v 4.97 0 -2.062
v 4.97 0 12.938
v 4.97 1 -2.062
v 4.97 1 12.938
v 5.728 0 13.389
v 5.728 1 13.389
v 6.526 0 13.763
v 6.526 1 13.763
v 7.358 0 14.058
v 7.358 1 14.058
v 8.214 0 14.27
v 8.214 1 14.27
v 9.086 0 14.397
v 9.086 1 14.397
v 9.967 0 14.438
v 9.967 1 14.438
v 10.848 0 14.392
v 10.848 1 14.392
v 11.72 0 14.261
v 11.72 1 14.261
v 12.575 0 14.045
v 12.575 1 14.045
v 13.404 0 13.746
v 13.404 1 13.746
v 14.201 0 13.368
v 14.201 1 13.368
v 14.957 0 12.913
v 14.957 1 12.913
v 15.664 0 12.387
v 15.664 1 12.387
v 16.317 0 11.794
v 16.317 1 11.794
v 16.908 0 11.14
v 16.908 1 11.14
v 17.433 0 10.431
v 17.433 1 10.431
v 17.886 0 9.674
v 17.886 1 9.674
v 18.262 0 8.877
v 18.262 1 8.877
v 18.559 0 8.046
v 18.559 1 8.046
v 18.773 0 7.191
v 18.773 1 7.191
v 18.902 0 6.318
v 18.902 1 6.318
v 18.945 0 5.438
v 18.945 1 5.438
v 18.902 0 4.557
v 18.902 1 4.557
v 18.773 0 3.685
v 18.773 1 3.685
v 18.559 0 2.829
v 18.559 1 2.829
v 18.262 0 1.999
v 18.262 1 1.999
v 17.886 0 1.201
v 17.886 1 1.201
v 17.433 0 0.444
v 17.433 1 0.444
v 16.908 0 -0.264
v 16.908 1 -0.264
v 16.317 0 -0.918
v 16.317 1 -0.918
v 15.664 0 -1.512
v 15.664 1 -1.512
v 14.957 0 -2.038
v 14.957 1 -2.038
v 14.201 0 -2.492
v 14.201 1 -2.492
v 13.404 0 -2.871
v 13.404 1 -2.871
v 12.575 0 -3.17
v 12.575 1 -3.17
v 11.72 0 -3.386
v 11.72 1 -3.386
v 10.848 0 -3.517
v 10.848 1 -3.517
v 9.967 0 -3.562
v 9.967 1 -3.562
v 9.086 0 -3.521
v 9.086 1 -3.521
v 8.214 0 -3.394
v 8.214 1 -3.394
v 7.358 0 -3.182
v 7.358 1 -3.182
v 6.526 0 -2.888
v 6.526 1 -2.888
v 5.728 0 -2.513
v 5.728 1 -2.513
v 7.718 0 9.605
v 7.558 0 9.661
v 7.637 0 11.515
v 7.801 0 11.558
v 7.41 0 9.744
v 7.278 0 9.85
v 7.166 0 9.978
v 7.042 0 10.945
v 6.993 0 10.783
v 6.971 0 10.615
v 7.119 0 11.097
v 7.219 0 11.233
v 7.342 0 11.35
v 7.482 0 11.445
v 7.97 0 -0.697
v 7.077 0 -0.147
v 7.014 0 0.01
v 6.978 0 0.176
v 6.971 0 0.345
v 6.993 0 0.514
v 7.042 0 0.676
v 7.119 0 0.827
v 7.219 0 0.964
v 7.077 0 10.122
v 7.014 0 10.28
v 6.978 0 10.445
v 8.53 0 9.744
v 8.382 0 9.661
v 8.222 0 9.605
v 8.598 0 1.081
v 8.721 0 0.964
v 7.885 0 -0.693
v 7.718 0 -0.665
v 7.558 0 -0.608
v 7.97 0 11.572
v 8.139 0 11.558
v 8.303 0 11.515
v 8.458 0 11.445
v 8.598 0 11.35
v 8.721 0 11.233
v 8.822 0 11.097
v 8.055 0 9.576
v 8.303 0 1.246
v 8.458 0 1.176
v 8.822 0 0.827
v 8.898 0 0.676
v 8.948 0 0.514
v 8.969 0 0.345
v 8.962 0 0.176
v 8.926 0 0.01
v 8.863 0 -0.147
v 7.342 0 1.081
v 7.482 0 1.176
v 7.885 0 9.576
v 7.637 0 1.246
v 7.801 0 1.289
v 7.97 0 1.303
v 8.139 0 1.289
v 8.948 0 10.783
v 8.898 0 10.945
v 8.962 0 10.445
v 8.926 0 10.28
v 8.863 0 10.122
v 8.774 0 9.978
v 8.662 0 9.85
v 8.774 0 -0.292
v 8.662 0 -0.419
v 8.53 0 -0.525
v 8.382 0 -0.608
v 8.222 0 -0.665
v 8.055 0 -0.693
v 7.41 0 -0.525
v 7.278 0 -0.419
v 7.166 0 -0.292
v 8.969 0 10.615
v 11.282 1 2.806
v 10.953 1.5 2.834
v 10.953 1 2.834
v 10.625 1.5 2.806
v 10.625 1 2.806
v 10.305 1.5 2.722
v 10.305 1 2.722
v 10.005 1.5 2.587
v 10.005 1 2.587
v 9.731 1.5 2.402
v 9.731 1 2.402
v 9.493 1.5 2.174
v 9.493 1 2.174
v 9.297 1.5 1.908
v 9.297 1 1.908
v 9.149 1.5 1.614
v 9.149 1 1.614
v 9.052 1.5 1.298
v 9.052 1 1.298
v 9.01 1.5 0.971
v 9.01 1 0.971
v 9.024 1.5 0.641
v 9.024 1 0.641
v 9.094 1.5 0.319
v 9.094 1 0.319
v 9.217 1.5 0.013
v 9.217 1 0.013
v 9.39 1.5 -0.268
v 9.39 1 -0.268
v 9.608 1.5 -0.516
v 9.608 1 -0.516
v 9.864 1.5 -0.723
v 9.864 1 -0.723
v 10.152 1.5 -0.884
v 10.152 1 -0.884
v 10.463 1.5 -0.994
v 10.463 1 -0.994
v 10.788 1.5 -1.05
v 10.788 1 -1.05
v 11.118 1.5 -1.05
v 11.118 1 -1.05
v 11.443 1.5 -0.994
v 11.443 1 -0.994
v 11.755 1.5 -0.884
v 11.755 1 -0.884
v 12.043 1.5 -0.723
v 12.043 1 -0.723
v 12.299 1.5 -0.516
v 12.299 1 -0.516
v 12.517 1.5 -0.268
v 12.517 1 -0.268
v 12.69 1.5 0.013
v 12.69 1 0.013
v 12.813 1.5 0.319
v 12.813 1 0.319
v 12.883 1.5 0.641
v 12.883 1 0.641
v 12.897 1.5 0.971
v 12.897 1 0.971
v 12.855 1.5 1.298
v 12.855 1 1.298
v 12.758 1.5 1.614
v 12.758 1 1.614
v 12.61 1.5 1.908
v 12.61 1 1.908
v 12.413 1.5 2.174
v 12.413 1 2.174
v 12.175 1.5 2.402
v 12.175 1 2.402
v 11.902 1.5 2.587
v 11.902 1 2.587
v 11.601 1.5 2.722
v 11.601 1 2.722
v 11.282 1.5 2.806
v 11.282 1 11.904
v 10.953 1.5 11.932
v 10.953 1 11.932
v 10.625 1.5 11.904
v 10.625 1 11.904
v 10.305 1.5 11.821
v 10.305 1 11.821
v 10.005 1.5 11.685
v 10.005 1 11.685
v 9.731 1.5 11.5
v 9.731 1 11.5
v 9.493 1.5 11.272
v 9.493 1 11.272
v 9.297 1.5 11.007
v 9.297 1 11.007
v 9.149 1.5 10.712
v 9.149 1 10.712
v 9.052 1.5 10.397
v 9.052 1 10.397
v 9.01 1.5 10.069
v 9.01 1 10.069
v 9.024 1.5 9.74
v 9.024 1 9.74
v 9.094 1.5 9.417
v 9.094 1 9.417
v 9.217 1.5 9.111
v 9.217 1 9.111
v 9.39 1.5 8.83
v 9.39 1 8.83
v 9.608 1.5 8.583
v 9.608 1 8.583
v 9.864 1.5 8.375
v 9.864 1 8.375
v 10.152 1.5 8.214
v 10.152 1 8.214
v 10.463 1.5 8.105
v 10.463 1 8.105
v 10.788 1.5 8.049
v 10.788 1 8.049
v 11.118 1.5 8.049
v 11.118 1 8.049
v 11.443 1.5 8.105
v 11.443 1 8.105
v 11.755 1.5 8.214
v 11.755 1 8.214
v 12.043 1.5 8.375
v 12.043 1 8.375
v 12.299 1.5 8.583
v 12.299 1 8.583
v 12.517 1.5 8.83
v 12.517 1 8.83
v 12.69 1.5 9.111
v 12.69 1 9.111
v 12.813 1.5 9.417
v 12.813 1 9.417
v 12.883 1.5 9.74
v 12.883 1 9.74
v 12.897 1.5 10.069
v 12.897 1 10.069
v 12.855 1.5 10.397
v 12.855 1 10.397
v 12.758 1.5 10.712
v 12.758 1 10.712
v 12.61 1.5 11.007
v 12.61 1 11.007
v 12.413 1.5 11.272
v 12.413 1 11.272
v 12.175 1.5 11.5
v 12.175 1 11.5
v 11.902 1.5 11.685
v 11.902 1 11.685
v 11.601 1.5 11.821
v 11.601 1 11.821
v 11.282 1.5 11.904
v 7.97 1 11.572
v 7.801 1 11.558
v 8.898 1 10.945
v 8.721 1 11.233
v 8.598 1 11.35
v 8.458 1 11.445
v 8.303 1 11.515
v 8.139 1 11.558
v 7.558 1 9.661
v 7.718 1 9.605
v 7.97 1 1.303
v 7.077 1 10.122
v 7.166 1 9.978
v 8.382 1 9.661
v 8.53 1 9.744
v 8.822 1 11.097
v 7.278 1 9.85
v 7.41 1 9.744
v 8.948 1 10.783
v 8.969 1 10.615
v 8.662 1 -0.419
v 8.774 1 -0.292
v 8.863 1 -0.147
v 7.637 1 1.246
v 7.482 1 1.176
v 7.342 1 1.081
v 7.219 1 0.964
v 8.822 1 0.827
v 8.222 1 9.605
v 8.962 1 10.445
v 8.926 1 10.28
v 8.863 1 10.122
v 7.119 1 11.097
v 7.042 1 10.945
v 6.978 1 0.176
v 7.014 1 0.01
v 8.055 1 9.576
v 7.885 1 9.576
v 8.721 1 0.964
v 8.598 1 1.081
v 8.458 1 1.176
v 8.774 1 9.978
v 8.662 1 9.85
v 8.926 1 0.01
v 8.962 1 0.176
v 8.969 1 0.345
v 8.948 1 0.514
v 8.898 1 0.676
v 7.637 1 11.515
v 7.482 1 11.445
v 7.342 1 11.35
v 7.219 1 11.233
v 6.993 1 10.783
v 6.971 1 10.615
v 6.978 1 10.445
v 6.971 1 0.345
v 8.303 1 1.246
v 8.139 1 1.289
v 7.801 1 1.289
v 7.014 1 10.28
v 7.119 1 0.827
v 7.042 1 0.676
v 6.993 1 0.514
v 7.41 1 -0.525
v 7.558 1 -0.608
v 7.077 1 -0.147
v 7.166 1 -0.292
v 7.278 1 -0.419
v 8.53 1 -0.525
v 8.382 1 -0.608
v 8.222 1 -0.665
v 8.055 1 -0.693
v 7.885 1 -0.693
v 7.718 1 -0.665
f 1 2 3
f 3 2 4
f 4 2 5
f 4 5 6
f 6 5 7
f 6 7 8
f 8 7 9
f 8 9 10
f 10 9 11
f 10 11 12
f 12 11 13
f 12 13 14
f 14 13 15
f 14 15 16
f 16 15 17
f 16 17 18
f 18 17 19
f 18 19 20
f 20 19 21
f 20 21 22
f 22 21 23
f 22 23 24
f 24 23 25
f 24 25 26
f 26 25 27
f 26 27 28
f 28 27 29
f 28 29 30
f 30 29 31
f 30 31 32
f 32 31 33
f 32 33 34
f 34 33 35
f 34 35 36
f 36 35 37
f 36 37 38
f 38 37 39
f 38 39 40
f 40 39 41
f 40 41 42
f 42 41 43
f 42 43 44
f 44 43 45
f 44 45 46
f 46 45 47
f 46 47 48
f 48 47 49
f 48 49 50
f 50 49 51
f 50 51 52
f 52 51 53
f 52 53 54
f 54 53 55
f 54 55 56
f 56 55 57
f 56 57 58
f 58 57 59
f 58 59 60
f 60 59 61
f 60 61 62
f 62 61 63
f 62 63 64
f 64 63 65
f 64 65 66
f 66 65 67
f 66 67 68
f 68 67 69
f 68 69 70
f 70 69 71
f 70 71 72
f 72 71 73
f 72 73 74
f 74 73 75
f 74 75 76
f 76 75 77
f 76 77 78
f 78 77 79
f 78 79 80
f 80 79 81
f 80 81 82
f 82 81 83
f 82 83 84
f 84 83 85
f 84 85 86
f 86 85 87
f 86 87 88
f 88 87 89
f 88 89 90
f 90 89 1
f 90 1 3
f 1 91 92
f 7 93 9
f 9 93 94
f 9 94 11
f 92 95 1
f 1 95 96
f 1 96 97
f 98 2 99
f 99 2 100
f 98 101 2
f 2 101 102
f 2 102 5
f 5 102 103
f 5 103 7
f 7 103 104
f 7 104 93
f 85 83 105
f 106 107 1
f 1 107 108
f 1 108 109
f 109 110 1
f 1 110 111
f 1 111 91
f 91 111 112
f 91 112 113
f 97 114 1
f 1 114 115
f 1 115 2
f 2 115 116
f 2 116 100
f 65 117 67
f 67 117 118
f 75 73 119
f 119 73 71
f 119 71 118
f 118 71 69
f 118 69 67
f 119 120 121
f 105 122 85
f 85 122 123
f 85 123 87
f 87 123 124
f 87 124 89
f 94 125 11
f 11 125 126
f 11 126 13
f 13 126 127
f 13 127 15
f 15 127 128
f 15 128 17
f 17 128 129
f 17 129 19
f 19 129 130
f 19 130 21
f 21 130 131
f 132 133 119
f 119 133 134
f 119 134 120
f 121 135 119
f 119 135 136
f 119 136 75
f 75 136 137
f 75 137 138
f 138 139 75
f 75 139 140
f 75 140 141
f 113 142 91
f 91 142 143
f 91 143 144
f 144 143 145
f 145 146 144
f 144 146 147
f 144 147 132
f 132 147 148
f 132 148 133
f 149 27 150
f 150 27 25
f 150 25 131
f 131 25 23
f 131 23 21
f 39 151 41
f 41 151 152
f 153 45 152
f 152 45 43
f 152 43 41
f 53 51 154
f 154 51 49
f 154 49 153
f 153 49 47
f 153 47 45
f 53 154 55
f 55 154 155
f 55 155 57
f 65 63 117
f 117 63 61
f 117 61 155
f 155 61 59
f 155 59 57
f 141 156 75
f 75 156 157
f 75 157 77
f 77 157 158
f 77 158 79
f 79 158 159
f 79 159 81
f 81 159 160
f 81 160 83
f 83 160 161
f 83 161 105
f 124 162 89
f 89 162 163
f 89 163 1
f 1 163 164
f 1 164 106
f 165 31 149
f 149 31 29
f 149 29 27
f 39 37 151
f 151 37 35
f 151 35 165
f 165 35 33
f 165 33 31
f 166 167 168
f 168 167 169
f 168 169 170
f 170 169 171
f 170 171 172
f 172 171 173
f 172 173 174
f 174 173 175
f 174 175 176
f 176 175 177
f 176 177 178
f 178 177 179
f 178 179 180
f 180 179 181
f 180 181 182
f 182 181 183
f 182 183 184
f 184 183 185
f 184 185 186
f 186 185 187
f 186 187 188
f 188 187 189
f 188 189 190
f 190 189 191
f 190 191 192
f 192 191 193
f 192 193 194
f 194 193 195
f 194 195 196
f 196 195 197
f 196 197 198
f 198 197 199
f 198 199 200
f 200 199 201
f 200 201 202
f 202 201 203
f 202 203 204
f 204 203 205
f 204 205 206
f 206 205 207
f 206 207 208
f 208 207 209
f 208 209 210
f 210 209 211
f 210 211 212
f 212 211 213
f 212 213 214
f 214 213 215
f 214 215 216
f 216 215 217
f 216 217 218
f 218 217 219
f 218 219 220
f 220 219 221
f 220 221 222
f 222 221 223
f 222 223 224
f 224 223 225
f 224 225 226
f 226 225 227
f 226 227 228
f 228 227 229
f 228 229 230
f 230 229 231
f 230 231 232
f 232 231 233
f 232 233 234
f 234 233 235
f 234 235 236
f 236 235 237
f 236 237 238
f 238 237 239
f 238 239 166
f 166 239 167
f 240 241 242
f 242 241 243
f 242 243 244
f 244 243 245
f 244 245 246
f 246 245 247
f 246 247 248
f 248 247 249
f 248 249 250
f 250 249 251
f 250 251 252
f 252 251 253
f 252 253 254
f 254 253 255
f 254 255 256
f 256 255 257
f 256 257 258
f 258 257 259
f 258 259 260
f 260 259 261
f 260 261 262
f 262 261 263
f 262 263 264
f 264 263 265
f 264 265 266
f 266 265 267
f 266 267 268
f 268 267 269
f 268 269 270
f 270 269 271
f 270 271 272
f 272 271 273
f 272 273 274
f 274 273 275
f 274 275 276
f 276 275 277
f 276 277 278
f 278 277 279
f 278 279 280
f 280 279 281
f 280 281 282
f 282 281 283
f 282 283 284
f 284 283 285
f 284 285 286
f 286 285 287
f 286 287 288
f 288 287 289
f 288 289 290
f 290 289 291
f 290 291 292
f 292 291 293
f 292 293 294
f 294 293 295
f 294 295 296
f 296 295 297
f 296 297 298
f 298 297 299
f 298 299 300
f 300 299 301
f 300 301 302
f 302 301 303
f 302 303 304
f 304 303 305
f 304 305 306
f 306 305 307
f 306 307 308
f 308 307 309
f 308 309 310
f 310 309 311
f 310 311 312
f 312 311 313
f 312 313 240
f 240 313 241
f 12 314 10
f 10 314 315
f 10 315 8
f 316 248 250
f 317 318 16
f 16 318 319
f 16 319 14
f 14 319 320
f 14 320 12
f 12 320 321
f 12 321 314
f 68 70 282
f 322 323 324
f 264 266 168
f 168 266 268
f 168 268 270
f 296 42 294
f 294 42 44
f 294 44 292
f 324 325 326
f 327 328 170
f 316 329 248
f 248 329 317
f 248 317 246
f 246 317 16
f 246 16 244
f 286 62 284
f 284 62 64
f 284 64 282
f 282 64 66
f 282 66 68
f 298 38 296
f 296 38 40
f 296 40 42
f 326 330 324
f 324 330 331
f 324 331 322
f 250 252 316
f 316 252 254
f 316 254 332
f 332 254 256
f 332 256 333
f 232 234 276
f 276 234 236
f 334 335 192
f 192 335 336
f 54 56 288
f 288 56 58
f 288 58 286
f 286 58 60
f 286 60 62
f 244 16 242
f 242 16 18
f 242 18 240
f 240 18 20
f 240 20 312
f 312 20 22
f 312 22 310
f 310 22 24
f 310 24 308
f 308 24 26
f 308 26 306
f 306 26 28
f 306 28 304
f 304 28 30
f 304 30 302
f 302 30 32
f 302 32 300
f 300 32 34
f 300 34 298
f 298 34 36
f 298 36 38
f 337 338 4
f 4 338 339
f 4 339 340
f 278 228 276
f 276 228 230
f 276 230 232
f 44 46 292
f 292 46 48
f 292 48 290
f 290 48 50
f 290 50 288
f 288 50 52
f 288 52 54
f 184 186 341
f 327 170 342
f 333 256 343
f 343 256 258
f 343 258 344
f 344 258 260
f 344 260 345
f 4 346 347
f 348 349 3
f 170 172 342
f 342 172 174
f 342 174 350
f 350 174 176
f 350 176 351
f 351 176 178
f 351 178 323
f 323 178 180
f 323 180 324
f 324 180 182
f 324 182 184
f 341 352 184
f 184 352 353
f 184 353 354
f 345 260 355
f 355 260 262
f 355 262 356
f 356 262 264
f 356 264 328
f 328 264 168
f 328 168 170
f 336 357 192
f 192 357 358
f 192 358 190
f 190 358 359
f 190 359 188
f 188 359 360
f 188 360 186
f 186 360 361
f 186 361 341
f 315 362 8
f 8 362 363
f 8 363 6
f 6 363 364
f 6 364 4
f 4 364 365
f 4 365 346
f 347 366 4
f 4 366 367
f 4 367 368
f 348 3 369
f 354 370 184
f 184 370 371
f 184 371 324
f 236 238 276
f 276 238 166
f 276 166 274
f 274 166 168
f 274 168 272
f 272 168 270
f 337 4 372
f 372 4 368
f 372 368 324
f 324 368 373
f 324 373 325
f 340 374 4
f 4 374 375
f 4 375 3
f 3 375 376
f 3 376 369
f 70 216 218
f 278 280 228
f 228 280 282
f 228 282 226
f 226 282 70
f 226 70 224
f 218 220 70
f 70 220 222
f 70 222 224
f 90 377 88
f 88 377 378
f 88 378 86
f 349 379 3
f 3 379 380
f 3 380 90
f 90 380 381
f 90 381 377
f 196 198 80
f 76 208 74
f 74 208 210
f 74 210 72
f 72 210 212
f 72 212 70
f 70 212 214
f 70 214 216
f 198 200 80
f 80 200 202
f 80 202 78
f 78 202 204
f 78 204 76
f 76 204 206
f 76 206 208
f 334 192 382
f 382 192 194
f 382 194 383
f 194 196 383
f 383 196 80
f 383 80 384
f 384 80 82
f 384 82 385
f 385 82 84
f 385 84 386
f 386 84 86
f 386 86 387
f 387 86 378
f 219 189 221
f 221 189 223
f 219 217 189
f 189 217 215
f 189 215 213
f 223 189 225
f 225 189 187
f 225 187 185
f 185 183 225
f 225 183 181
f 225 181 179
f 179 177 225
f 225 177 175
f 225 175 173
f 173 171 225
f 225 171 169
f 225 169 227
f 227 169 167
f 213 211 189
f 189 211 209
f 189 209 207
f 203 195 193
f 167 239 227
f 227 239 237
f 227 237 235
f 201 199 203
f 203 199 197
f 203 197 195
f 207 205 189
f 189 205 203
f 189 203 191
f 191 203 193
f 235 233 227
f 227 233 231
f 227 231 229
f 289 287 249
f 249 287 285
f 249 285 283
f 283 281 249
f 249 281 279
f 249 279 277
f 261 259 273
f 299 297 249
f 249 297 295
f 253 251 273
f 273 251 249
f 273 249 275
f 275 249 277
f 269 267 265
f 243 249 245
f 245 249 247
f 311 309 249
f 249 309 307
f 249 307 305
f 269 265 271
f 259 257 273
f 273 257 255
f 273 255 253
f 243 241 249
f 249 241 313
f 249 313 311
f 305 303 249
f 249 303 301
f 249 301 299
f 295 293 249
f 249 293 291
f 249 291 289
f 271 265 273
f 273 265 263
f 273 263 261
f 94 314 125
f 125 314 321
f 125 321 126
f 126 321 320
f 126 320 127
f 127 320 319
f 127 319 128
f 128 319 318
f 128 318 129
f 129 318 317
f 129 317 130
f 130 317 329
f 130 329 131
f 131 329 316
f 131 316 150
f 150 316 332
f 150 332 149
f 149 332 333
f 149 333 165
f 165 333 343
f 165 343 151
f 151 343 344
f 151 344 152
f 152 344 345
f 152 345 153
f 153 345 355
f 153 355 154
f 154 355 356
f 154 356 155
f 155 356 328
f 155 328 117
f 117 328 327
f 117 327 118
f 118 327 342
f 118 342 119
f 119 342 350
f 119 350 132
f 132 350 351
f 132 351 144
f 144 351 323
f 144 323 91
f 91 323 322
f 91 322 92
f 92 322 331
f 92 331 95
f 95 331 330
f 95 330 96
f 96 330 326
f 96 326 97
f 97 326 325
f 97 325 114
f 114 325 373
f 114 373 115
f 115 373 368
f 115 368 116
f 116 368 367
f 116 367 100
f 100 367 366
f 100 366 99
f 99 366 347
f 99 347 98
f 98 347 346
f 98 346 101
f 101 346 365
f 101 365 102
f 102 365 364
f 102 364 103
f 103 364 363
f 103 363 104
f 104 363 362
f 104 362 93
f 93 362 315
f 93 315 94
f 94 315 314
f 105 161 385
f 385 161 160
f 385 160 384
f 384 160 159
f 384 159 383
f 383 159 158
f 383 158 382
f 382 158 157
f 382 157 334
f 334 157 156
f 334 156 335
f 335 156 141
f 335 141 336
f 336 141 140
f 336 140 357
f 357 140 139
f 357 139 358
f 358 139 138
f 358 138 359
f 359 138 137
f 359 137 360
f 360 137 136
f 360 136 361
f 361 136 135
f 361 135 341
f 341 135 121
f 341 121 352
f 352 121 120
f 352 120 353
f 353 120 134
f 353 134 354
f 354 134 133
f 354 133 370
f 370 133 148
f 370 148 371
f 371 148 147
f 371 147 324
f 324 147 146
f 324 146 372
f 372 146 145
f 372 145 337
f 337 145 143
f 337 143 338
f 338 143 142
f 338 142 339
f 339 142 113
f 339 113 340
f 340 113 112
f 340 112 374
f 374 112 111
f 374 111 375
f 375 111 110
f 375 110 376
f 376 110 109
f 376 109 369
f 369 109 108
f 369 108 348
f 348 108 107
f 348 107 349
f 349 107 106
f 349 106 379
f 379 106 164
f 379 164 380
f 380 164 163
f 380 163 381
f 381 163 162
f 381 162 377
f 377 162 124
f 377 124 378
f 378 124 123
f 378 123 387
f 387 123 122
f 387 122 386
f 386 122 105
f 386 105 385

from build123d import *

# Parameters (mm, degrees)
RESSALTO_EXTRUS_O2_DEPTH   = 1.5
ESBO_O5_R                  = 15.72745668
ESBO_O5_R_2                = 1.945049623
CORTE_EXTRUS_O1_DEPTH      = 0.5
CORTE_EXTRUS_O2_DEPTH      = 24.840358488
CORTE_EXTRUS_O2_DEPTH_BACK = 24.840358488
ESBO_O7_R                  = 1


with BuildPart() as part:
    # Esboço4 → Ressalto-extrusão2 (new body)
    with BuildSketch(Plane(origin=(0, 0, 0), x_dir=(1, 0, 0), z_dir=(0, 1, 0))):
        with BuildLine():
            ThreePointArc((18.945063587, -5.437702675), (14.200975083, 2.492443436), (4.970126401, 2.062297325))
            Line((4.970126401, 2.062297325), (4.970126401, -12.937702675))
            ThreePointArc((4.970126401, -12.937702675), (14.200975083, -13.367848785), (18.945063587, -5.437702675))
        make_face()
    extrude(amount=RESSALTO_EXTRUS_O2_DEPTH)

    # Esboço5 → Corte-extrusão1 (cut)
    with BuildSketch(Plane(origin=(0, 1.5, 0), x_dir=(1, 0, 0), z_dir=(0, 1, 0))):
        with Locations((8.279998828, -5.161239755)):
            Circle(ESBO_O5_R)
        with Locations(Location((10.953382727, -0.888525014, 0), (0, 0, 270))):
            Circle(ESBO_O5_R_2, mode=Mode.SUBTRACT)
        with Locations(Location((10.953382727, -9.986880335, 0), (0, 0, 270))):
            Circle(ESBO_O5_R_2, mode=Mode.SUBTRACT)
    extrude(amount=-CORTE_EXTRUS_O1_DEPTH, mode=Mode.SUBTRACT)

    # Esboço7 → Corte-extrusão2 (cut, two sides: drawn at the far end of the back side and taken through both)
    with BuildSketch(Plane(origin=(0, 1, 0), x_dir=(1, 0, 0), z_dir=(0, 1, 0)).offset(-CORTE_EXTRUS_O2_DEPTH_BACK)):
        with Locations(Location((7.970126401, -10.572389641, 0), (0, 0, 270))):
            Circle(ESBO_O7_R)
        with Locations(Location((7.970126401, -0.303015709, 0), (0, 0, 270))):
            Circle(ESBO_O7_R)
    extrude(amount=CORTE_EXTRUS_O2_DEPTH + CORTE_EXTRUS_O2_DEPTH_BACK, mode=Mode.SUBTRACT)


solid = part.part
